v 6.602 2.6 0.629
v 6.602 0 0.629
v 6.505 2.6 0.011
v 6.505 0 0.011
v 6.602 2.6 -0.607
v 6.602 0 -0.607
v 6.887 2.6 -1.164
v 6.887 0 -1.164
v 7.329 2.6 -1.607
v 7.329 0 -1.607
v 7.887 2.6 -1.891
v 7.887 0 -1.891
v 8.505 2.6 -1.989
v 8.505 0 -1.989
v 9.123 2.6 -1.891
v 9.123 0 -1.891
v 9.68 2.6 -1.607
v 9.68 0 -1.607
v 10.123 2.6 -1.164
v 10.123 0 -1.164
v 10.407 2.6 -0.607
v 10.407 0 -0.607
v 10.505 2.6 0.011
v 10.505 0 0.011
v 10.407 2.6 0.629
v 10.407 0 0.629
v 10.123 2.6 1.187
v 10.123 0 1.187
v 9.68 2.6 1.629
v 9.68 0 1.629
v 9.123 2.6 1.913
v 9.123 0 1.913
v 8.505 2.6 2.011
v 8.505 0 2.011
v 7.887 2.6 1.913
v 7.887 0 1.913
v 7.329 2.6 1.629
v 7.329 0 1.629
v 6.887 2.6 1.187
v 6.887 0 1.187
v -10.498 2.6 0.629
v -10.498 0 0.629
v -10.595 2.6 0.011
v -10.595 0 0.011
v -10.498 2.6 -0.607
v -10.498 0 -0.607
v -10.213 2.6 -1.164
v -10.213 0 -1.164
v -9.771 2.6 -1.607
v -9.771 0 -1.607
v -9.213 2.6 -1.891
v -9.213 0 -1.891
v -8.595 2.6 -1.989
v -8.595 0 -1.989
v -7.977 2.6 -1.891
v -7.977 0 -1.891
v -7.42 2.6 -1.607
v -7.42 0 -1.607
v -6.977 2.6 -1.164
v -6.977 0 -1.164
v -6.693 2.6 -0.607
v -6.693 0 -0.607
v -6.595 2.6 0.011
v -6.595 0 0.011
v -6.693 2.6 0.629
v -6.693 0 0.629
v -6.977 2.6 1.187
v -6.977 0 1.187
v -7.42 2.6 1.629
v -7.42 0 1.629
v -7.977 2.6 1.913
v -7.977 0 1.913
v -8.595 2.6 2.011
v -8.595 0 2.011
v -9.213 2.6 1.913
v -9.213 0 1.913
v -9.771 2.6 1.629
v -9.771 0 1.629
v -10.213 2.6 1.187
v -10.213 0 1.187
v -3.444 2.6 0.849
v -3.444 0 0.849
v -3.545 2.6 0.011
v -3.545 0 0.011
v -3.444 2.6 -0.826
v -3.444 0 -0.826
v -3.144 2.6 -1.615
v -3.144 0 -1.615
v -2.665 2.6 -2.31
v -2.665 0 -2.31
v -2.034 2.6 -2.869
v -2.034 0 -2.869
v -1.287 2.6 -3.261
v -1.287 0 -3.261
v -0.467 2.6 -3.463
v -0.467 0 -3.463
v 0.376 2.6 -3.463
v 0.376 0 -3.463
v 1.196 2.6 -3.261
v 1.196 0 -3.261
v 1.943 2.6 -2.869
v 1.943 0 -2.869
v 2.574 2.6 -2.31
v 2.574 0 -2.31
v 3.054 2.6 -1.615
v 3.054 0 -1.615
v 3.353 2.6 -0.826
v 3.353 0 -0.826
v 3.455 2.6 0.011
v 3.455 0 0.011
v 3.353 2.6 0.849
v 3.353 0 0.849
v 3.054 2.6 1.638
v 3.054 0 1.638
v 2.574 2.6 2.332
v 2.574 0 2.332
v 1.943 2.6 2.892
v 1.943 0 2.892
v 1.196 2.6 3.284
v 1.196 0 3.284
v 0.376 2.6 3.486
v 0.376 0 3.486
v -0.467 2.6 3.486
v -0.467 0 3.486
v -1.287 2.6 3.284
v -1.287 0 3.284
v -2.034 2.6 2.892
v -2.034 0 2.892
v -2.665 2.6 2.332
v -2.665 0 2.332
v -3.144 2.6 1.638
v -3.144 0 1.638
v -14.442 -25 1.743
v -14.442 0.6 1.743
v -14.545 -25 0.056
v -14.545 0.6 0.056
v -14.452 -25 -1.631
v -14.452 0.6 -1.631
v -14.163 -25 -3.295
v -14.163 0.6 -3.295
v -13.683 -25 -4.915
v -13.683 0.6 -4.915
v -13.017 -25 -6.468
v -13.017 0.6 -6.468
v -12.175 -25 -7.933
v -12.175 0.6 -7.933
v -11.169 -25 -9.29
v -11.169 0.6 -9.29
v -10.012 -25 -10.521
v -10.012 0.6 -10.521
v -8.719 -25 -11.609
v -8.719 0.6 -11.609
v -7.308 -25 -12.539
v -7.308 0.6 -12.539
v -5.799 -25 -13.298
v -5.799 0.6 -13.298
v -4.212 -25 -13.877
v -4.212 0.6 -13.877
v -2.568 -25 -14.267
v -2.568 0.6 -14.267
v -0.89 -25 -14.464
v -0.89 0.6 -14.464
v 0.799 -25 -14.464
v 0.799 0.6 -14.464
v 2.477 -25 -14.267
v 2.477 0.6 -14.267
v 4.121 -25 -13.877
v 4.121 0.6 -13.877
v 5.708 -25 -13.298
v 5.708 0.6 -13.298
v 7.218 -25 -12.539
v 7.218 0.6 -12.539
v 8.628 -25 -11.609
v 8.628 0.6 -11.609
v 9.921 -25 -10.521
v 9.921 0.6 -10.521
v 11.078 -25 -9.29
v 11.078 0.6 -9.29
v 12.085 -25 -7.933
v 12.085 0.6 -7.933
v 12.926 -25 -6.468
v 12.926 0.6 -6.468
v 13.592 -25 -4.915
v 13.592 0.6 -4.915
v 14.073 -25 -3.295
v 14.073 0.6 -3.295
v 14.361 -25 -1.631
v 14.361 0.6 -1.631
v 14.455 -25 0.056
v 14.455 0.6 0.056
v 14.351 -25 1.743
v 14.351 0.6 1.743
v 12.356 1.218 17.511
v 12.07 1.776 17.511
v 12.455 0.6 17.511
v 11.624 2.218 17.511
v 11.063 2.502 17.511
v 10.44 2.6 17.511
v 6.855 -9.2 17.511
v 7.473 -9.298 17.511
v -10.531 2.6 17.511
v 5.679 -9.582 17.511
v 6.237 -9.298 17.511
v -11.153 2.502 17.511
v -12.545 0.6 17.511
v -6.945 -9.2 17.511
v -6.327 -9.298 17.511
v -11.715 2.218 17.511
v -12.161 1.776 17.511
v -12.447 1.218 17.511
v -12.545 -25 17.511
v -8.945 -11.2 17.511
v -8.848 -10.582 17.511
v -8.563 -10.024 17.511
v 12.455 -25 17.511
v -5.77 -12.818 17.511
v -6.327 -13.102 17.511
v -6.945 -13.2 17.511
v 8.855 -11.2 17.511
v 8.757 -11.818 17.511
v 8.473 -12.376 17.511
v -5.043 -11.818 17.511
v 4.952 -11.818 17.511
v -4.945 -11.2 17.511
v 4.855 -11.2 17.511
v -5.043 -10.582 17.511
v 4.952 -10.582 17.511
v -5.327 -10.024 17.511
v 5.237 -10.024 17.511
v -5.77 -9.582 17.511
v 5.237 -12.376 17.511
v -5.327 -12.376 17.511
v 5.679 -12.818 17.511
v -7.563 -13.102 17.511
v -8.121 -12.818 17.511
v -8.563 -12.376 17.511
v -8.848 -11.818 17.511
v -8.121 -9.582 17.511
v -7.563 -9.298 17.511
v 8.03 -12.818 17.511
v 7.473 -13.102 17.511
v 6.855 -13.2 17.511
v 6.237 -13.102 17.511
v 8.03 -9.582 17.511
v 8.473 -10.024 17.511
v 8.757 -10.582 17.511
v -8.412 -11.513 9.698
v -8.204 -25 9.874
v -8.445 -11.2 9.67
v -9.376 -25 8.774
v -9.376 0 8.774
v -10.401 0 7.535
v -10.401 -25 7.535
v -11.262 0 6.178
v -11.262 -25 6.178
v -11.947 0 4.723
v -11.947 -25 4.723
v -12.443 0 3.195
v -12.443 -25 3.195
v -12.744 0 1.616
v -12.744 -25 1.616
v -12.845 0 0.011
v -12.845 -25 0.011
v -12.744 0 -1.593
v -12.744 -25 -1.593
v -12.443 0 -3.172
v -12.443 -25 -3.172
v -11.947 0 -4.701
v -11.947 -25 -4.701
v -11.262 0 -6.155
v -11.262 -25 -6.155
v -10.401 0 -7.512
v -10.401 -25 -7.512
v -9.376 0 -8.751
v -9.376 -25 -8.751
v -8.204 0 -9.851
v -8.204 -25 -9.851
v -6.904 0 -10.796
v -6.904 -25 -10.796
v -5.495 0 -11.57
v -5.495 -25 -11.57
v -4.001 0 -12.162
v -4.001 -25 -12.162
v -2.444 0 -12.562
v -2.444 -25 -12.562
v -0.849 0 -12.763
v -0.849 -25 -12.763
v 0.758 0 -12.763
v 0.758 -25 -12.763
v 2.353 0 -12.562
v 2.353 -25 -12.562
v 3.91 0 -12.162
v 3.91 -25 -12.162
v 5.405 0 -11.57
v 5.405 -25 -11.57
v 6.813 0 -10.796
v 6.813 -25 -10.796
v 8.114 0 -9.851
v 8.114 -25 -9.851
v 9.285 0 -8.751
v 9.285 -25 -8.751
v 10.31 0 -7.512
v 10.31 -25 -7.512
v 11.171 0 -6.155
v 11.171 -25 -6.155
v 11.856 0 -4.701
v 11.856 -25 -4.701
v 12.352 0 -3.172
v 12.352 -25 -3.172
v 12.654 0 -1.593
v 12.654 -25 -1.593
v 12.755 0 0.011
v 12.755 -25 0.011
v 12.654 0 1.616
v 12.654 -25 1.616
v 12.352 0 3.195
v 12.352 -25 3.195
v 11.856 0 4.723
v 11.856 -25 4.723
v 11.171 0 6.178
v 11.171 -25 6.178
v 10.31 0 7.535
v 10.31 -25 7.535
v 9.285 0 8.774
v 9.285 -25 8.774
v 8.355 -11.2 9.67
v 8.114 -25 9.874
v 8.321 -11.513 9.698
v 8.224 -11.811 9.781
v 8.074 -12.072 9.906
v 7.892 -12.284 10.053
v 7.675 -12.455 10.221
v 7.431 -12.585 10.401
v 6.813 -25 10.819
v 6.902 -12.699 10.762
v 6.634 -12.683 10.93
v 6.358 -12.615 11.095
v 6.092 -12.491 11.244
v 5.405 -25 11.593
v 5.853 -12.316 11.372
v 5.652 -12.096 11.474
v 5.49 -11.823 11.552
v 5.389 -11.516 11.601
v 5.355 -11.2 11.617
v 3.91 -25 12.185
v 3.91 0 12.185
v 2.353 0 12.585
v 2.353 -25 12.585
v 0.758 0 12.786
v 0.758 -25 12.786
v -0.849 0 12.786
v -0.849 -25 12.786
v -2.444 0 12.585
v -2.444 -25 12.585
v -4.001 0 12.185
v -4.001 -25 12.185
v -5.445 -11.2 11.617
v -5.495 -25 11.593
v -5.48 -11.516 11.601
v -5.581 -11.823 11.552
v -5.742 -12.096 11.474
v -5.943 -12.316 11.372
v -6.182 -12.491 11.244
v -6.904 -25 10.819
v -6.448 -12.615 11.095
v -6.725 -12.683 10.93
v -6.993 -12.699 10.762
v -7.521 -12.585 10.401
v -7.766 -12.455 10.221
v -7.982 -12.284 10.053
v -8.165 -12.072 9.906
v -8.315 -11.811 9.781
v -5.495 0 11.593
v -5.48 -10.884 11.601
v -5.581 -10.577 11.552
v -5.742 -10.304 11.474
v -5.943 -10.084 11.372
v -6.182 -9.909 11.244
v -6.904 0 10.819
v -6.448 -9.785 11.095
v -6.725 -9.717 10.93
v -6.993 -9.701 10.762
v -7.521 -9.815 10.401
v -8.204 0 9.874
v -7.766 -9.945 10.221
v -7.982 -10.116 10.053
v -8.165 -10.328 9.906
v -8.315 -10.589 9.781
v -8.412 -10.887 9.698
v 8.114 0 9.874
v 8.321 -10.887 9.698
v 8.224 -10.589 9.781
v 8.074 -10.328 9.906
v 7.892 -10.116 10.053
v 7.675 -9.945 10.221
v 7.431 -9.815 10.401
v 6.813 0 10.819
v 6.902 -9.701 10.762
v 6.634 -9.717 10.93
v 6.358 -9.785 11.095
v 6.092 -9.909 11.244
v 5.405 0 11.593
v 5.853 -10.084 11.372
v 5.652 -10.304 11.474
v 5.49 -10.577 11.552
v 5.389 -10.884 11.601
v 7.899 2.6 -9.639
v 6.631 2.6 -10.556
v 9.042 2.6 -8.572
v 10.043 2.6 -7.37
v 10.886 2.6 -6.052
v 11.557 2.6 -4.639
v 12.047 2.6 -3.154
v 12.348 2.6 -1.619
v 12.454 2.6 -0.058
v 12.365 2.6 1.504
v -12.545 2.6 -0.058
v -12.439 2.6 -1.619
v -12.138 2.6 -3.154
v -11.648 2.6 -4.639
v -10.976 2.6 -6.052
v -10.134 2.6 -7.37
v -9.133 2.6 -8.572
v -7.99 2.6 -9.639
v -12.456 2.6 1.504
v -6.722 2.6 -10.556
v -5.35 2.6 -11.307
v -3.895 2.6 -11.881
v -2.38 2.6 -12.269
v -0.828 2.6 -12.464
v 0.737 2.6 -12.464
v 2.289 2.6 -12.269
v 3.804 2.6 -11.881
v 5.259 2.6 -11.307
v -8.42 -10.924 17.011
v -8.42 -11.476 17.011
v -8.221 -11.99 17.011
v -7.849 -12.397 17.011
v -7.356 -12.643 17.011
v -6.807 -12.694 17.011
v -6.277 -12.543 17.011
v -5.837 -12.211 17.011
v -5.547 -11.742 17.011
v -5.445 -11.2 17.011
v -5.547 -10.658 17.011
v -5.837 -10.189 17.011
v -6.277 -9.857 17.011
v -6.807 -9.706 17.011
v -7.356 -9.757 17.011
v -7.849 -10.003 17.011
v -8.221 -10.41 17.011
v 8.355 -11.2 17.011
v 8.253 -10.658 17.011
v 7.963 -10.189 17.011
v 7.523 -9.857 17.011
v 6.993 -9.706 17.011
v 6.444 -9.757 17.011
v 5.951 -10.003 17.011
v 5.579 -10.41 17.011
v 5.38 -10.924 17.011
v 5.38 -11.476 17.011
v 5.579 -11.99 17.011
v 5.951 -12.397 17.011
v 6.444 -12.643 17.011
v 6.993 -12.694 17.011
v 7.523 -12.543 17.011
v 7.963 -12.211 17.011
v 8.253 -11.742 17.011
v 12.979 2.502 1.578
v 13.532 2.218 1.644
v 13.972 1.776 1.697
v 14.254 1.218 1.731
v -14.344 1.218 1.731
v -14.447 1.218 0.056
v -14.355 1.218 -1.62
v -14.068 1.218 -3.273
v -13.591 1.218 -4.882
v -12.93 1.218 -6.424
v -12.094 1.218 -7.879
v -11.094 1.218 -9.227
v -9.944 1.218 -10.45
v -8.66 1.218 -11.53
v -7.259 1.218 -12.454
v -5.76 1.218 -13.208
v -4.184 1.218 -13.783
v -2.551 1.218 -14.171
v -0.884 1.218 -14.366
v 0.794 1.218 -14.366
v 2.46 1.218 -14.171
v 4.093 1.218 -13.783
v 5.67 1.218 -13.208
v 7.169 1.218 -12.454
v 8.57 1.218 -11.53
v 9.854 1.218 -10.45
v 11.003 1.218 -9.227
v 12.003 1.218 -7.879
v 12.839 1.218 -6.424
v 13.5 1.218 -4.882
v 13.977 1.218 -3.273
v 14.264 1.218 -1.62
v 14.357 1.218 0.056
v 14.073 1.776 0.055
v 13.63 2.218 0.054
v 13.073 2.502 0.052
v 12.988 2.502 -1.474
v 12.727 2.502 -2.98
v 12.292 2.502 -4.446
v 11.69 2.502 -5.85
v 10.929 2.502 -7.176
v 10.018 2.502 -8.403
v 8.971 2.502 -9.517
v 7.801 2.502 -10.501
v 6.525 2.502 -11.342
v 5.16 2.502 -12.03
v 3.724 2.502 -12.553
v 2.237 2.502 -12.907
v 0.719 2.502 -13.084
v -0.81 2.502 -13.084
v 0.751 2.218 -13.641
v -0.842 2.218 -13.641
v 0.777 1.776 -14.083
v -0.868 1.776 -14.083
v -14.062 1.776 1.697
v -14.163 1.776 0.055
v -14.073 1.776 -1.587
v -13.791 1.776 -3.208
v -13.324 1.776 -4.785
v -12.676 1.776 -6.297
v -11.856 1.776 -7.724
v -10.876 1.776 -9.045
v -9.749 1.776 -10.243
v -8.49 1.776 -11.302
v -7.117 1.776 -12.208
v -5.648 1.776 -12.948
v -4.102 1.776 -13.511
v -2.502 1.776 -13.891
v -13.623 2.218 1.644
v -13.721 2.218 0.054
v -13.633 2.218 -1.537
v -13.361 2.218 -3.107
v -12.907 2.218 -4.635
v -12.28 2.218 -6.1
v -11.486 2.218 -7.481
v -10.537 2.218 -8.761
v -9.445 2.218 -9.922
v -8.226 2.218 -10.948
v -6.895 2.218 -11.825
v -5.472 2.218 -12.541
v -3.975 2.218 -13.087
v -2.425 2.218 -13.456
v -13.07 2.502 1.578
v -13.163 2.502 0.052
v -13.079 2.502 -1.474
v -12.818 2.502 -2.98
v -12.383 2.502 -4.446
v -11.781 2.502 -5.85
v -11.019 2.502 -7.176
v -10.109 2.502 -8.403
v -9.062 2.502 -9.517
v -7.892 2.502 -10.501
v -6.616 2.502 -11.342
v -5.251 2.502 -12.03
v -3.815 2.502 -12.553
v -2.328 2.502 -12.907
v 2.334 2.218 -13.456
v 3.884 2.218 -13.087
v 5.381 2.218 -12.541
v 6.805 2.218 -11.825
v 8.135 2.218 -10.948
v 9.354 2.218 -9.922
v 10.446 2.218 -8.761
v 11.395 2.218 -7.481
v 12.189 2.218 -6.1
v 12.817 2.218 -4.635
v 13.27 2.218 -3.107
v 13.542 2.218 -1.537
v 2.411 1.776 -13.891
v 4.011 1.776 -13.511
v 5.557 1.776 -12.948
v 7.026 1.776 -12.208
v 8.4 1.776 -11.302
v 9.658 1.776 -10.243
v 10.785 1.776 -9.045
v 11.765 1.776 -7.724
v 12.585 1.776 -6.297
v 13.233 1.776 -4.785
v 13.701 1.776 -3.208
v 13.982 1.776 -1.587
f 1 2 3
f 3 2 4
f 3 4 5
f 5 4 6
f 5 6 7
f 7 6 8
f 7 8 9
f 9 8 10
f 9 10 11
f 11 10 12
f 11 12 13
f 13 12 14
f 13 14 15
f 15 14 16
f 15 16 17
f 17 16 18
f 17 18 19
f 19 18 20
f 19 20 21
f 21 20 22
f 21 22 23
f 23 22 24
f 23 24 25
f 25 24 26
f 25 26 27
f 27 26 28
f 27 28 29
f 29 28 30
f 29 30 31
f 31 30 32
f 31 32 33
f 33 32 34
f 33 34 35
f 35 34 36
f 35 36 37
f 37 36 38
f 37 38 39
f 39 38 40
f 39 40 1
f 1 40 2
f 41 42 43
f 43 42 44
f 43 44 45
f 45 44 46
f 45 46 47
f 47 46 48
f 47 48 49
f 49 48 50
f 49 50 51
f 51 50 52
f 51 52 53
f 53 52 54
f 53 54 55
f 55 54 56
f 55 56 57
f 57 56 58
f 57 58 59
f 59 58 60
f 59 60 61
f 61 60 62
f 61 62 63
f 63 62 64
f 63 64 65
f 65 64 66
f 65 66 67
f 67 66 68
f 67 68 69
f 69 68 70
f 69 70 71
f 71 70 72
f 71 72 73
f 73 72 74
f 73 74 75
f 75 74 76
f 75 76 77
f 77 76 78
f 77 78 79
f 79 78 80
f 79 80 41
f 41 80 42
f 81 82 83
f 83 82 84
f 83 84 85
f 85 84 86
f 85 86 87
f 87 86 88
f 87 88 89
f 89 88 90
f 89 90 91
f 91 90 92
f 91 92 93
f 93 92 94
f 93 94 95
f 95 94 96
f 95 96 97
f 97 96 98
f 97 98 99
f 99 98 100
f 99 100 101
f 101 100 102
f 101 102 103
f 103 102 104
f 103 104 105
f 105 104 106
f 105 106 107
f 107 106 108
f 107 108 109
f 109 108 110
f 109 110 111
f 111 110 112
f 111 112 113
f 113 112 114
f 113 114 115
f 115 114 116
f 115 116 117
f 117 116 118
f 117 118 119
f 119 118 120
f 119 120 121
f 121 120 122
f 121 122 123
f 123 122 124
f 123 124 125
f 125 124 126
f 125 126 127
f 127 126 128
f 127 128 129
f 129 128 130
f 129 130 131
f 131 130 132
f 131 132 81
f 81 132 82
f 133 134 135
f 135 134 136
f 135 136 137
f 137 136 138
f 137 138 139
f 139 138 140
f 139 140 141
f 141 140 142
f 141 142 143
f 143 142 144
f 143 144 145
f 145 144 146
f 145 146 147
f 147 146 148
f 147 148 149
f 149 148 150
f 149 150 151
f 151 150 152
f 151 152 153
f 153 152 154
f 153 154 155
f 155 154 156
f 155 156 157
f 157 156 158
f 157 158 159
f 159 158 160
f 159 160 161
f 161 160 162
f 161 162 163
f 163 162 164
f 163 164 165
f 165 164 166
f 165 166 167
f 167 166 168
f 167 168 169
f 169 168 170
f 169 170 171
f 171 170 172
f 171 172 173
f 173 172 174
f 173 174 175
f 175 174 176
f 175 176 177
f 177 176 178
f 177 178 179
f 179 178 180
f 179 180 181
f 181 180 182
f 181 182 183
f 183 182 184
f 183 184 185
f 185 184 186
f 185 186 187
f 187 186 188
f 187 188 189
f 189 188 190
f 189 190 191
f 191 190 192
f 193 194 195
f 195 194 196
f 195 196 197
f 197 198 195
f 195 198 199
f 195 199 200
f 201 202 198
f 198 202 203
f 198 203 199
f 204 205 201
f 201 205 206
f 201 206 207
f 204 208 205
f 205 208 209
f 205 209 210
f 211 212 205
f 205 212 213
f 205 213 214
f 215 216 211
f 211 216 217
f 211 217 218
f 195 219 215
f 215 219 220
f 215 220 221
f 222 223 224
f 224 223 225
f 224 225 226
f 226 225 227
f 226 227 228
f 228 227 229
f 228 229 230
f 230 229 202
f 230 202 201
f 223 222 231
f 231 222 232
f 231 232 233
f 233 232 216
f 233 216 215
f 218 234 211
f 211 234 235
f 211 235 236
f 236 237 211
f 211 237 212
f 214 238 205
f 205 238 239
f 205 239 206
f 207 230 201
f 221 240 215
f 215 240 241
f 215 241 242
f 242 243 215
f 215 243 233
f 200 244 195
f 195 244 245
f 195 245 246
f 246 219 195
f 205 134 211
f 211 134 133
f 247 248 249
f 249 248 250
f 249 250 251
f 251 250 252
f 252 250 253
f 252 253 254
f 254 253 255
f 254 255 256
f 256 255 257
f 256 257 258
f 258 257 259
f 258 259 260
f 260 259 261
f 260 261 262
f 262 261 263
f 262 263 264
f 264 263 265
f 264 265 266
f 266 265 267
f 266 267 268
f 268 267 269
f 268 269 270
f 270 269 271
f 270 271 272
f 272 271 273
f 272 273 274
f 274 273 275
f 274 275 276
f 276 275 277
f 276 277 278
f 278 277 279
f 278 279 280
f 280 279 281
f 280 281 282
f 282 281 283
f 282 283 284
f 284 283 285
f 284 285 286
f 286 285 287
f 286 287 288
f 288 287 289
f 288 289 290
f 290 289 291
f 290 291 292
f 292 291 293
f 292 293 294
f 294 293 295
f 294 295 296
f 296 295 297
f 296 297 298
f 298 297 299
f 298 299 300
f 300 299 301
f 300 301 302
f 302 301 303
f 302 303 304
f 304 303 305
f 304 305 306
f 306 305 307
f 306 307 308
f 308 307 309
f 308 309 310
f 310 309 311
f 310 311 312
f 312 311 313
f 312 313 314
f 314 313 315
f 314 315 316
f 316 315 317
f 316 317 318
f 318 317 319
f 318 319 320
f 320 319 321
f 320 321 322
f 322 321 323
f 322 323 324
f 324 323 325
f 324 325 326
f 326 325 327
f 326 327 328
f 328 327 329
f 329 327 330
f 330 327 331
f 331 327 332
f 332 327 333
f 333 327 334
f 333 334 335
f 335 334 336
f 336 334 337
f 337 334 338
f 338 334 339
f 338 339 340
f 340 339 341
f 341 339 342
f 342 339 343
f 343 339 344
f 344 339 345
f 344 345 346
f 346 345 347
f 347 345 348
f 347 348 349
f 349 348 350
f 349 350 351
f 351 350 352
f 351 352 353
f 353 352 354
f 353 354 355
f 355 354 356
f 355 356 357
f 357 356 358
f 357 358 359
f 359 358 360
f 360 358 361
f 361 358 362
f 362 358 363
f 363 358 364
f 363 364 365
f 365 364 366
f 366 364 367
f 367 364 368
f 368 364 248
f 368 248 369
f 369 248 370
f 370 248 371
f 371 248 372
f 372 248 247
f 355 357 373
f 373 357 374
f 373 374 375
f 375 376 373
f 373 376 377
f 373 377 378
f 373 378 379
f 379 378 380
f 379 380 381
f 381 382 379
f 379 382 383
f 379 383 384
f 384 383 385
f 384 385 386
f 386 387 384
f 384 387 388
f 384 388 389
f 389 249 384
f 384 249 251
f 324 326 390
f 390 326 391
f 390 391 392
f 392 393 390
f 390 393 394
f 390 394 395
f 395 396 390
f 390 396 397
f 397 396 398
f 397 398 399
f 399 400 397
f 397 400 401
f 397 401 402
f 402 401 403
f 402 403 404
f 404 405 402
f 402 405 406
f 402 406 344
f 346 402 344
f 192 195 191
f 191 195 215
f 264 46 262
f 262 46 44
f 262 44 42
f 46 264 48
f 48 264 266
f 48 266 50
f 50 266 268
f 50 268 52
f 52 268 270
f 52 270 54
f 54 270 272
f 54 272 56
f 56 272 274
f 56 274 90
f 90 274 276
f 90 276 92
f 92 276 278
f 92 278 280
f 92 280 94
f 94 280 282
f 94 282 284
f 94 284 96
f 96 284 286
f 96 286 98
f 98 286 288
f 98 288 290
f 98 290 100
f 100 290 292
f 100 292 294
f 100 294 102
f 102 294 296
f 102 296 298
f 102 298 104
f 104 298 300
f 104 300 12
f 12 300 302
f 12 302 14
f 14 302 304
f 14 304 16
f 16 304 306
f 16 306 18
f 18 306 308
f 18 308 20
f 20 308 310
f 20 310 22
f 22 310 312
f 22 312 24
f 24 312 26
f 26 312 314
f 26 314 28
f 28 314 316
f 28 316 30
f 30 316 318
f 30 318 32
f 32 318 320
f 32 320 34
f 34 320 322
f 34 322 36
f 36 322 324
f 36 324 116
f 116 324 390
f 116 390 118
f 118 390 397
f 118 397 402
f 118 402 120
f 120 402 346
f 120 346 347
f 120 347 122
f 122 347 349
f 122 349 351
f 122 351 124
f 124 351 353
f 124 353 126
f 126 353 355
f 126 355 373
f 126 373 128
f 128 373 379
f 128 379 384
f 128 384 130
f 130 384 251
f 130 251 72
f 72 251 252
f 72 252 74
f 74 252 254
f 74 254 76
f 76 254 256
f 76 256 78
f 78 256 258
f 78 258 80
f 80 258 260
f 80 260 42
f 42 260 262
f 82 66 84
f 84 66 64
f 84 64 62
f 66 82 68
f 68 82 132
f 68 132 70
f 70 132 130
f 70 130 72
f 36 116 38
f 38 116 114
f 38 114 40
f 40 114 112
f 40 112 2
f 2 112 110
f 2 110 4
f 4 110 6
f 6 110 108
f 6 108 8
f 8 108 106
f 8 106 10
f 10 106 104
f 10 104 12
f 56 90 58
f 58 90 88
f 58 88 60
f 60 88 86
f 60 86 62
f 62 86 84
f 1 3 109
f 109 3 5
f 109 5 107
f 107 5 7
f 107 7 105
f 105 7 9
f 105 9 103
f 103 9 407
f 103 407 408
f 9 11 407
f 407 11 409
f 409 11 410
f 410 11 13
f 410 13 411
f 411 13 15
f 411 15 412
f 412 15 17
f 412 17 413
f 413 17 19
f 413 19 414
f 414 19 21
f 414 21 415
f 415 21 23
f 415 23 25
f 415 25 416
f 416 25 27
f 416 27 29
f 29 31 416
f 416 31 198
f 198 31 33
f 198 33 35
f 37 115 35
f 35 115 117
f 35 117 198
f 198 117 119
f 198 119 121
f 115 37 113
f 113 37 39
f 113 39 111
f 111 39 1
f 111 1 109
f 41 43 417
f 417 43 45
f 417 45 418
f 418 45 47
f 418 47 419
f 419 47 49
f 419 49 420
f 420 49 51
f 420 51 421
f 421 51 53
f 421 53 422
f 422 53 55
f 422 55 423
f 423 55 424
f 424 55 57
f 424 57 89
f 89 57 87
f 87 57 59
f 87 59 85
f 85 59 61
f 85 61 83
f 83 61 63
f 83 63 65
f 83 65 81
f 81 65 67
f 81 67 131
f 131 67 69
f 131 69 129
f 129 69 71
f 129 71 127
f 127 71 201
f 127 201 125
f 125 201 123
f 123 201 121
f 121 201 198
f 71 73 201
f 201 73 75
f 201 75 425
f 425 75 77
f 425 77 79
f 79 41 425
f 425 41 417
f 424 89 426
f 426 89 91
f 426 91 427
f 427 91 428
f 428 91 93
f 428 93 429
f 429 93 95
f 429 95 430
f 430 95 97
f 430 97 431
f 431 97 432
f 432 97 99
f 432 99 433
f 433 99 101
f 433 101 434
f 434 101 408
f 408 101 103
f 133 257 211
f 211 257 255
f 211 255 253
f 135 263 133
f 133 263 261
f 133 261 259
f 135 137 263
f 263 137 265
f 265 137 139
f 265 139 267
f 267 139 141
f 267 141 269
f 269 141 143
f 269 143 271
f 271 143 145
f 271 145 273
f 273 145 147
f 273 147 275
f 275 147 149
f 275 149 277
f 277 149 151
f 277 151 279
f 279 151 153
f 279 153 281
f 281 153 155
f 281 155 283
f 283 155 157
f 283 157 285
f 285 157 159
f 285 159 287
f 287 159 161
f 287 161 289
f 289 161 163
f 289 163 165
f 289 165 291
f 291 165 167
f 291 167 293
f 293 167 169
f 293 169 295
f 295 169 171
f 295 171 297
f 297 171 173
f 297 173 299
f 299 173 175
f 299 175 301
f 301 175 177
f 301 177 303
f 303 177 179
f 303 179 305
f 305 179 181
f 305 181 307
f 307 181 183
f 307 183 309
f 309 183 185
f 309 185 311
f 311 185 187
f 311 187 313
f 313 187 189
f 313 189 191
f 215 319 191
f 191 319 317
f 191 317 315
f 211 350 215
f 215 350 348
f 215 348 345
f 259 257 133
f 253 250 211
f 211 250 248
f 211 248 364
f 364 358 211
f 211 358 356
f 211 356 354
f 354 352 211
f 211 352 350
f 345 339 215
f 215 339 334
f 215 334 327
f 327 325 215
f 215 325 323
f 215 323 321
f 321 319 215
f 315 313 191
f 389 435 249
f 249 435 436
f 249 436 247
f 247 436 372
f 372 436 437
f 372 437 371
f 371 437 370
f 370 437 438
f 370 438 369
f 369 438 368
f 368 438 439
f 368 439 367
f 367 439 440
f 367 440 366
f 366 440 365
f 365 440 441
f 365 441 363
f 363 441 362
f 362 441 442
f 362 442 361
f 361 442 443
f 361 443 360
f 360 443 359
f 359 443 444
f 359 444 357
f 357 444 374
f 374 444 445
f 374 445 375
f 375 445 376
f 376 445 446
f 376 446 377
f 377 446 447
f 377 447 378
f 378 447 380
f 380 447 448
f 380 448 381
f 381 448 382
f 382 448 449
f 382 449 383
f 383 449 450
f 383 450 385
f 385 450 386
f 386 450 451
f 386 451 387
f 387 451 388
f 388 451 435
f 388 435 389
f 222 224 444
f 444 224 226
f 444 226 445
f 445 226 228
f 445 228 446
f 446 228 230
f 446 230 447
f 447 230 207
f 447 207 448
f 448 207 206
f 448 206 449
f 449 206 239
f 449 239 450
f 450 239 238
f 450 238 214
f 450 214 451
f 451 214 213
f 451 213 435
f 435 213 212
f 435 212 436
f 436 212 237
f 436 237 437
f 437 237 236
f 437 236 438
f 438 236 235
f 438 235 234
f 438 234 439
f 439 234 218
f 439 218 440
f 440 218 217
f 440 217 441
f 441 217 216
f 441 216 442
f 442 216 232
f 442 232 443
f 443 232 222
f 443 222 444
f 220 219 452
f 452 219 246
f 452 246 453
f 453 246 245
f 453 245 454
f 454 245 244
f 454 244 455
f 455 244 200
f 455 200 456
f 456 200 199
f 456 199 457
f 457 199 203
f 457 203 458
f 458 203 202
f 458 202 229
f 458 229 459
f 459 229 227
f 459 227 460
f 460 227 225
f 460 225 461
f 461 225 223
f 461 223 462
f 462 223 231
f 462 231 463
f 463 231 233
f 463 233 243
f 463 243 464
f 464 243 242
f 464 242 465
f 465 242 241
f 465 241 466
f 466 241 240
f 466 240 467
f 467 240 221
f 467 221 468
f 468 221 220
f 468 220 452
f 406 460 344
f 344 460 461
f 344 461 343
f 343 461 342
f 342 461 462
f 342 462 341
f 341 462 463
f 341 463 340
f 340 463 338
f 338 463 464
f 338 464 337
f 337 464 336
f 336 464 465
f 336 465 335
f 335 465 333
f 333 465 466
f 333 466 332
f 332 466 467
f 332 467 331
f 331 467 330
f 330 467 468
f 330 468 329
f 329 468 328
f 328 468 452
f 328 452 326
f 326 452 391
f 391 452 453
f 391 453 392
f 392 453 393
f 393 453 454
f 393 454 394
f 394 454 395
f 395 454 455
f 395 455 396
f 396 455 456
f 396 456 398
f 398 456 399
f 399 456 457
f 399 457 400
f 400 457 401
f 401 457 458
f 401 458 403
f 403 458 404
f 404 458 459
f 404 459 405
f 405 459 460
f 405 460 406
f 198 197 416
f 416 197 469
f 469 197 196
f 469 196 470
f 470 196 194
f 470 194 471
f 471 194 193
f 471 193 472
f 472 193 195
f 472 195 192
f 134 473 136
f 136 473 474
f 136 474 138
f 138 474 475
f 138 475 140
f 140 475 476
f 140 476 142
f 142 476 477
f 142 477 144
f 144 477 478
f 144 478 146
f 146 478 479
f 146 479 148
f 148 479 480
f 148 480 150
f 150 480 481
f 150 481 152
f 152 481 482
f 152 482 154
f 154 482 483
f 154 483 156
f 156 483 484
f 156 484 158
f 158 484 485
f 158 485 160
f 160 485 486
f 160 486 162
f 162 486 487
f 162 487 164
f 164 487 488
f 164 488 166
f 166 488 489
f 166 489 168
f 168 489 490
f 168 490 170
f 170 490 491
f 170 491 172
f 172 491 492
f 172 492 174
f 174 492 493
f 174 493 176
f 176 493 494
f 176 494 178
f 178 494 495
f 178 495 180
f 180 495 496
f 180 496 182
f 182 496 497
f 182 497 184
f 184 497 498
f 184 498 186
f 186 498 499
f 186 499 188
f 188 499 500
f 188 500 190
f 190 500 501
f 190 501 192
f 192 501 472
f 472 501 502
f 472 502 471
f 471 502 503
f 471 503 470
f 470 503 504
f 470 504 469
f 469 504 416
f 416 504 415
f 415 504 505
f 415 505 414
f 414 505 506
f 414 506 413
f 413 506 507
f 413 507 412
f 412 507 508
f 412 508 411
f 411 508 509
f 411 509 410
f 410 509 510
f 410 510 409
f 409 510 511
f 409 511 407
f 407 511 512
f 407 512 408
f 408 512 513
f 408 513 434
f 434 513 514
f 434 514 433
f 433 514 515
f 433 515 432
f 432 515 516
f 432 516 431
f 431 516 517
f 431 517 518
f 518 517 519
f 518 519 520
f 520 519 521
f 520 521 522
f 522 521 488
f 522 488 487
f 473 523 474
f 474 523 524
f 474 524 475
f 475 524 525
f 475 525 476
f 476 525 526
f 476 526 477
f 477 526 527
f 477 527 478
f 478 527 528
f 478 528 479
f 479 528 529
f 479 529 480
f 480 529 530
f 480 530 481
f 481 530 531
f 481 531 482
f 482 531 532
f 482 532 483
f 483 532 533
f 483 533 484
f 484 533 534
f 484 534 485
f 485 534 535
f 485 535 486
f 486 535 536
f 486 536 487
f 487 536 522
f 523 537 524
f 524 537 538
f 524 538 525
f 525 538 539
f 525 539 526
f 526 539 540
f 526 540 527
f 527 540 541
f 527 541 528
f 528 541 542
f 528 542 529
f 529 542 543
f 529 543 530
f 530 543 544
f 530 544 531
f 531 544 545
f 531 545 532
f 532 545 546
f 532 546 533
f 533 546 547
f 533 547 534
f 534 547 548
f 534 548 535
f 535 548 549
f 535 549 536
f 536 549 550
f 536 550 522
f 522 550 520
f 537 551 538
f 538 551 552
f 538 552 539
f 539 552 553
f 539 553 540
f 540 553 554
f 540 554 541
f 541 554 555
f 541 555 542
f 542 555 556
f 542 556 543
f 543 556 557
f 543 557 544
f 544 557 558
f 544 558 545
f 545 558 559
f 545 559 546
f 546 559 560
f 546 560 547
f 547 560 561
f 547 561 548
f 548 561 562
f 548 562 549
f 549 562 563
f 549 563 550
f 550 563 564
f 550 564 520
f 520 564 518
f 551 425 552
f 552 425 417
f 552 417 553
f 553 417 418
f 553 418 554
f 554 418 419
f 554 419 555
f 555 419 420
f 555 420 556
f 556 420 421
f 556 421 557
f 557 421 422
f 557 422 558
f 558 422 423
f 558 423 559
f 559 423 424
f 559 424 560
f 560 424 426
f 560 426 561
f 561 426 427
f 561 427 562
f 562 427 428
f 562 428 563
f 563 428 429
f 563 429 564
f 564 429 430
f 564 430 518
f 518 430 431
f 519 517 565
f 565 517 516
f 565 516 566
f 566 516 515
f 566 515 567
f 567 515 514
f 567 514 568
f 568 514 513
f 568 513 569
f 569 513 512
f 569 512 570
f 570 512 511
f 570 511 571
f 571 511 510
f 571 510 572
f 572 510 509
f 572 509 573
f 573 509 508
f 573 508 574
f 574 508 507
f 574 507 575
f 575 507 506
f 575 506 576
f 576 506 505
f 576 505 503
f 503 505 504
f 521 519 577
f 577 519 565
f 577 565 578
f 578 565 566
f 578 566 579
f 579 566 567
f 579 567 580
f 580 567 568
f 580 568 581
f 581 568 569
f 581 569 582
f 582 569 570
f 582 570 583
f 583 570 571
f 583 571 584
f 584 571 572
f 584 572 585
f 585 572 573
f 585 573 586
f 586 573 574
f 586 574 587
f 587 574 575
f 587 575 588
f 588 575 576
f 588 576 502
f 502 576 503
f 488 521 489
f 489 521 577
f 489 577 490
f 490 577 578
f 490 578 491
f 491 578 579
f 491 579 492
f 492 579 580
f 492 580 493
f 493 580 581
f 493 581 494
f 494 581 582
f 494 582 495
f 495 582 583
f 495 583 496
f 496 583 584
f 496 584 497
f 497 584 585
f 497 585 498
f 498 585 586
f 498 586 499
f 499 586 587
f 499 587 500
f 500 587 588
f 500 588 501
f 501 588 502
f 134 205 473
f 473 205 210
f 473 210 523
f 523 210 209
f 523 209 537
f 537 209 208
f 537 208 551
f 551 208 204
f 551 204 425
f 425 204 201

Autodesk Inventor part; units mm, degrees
ref_plane "YZ Plane" through (0, 0, 0) normal (1, 0, 0) x (0, 1, 0)
ref_plane "XZ Plane" through (0, 0, 0) normal (0, 1, 0) x (-1, 0, 0)
ref_plane "XY Plane" through (0, 0, 0) normal (0, 0, 1) x (1, 0, 0)
sketch "Sketch1" plane through (0, 0, 0) normal (0, 1, 0) x (-1, 0, 0)
  circle A0 centre (-8.5046, 0.0113) radius 2
  circle A1 centre (0.0454, 0.0113) radius 12.5
  circle A2 centre (-8.5046, 0.0113) radius 1.5
  circle A3 centre (8.5954, 0.0113) radius 2
  circle A4 centre (8.5954, 0.0113) radius 1.5
  circle A5 centre (0.0454, 0.0113) radius 3.5
  line L0 (-12.4546, 0.0113) -> (12.5454, 0.0113)
  line L1 (12.5454, 17.5113) -> (-12.4546, 17.5113)
  circle A6 centre (0.0454, 0.0113) radius 14.5
  line L2 (-12.4546, 17.5113) -> (-14.3509, 1.7426)
  line L3 (12.5454, 17.5113) -> (14.4417, 1.7426)
  circle A7 centre (0.0454, 0.0113) radius 12.8
  point P0 (0, 0)
  dimension "d0" = 17.5
  dimension "d2" = 2
  dimension "d5" = 0.3
extrude "Extrusion1" add sketch "Sketch1" along normal blind 2.6 contours L0 A5 A3 A1 A0 | A0 L0 A1 A3 A5 | L3 A6 L2 L1 | A6 | A7
extrude "Extrusion2" add sketch "Sketch1" against normal blind 25 contours L3 A6 L2 L1 | A6
sketch "Sketch2" plane through (-12.5454, 2.6, 17.5113) normal (0, 0, 1) x (1, 0, 0)
  line L0 (25, -27.6) -> (0, -27.6) construction
  line L1 (25, -27.6) -> (0, 0) construction
  line L2 (0, -27.6) -> (25, 0) construction
  line L3 (27, 0) -> (-2, 0) construction
  line L4 (19.4, -13.8) -> (5.6, -13.8) construction
  point P0 (12.5454, -2.6)
  point P1 (26.8963, 0)
  point P2 (-1.8963, 0)
  point P3 (12.5, -13.8)
  dimension "d8" = 13.8
hole "Hole1" at (6.8546, -11.2, 17.5113) at (-6.9454, -11.2, 17.5113) direction (0, 0, -1) diameter 3 depth 12 tip angle 118 countersink diameter 4 countersink angle 90
fillet "Fillet1" radius 2 3 edges at (-0.0454, 2.6, -14.4887) (-13.4935, 2.6, 9.627) (13.4027, 2.6, 9.627)
properties part number "motor_holder"
